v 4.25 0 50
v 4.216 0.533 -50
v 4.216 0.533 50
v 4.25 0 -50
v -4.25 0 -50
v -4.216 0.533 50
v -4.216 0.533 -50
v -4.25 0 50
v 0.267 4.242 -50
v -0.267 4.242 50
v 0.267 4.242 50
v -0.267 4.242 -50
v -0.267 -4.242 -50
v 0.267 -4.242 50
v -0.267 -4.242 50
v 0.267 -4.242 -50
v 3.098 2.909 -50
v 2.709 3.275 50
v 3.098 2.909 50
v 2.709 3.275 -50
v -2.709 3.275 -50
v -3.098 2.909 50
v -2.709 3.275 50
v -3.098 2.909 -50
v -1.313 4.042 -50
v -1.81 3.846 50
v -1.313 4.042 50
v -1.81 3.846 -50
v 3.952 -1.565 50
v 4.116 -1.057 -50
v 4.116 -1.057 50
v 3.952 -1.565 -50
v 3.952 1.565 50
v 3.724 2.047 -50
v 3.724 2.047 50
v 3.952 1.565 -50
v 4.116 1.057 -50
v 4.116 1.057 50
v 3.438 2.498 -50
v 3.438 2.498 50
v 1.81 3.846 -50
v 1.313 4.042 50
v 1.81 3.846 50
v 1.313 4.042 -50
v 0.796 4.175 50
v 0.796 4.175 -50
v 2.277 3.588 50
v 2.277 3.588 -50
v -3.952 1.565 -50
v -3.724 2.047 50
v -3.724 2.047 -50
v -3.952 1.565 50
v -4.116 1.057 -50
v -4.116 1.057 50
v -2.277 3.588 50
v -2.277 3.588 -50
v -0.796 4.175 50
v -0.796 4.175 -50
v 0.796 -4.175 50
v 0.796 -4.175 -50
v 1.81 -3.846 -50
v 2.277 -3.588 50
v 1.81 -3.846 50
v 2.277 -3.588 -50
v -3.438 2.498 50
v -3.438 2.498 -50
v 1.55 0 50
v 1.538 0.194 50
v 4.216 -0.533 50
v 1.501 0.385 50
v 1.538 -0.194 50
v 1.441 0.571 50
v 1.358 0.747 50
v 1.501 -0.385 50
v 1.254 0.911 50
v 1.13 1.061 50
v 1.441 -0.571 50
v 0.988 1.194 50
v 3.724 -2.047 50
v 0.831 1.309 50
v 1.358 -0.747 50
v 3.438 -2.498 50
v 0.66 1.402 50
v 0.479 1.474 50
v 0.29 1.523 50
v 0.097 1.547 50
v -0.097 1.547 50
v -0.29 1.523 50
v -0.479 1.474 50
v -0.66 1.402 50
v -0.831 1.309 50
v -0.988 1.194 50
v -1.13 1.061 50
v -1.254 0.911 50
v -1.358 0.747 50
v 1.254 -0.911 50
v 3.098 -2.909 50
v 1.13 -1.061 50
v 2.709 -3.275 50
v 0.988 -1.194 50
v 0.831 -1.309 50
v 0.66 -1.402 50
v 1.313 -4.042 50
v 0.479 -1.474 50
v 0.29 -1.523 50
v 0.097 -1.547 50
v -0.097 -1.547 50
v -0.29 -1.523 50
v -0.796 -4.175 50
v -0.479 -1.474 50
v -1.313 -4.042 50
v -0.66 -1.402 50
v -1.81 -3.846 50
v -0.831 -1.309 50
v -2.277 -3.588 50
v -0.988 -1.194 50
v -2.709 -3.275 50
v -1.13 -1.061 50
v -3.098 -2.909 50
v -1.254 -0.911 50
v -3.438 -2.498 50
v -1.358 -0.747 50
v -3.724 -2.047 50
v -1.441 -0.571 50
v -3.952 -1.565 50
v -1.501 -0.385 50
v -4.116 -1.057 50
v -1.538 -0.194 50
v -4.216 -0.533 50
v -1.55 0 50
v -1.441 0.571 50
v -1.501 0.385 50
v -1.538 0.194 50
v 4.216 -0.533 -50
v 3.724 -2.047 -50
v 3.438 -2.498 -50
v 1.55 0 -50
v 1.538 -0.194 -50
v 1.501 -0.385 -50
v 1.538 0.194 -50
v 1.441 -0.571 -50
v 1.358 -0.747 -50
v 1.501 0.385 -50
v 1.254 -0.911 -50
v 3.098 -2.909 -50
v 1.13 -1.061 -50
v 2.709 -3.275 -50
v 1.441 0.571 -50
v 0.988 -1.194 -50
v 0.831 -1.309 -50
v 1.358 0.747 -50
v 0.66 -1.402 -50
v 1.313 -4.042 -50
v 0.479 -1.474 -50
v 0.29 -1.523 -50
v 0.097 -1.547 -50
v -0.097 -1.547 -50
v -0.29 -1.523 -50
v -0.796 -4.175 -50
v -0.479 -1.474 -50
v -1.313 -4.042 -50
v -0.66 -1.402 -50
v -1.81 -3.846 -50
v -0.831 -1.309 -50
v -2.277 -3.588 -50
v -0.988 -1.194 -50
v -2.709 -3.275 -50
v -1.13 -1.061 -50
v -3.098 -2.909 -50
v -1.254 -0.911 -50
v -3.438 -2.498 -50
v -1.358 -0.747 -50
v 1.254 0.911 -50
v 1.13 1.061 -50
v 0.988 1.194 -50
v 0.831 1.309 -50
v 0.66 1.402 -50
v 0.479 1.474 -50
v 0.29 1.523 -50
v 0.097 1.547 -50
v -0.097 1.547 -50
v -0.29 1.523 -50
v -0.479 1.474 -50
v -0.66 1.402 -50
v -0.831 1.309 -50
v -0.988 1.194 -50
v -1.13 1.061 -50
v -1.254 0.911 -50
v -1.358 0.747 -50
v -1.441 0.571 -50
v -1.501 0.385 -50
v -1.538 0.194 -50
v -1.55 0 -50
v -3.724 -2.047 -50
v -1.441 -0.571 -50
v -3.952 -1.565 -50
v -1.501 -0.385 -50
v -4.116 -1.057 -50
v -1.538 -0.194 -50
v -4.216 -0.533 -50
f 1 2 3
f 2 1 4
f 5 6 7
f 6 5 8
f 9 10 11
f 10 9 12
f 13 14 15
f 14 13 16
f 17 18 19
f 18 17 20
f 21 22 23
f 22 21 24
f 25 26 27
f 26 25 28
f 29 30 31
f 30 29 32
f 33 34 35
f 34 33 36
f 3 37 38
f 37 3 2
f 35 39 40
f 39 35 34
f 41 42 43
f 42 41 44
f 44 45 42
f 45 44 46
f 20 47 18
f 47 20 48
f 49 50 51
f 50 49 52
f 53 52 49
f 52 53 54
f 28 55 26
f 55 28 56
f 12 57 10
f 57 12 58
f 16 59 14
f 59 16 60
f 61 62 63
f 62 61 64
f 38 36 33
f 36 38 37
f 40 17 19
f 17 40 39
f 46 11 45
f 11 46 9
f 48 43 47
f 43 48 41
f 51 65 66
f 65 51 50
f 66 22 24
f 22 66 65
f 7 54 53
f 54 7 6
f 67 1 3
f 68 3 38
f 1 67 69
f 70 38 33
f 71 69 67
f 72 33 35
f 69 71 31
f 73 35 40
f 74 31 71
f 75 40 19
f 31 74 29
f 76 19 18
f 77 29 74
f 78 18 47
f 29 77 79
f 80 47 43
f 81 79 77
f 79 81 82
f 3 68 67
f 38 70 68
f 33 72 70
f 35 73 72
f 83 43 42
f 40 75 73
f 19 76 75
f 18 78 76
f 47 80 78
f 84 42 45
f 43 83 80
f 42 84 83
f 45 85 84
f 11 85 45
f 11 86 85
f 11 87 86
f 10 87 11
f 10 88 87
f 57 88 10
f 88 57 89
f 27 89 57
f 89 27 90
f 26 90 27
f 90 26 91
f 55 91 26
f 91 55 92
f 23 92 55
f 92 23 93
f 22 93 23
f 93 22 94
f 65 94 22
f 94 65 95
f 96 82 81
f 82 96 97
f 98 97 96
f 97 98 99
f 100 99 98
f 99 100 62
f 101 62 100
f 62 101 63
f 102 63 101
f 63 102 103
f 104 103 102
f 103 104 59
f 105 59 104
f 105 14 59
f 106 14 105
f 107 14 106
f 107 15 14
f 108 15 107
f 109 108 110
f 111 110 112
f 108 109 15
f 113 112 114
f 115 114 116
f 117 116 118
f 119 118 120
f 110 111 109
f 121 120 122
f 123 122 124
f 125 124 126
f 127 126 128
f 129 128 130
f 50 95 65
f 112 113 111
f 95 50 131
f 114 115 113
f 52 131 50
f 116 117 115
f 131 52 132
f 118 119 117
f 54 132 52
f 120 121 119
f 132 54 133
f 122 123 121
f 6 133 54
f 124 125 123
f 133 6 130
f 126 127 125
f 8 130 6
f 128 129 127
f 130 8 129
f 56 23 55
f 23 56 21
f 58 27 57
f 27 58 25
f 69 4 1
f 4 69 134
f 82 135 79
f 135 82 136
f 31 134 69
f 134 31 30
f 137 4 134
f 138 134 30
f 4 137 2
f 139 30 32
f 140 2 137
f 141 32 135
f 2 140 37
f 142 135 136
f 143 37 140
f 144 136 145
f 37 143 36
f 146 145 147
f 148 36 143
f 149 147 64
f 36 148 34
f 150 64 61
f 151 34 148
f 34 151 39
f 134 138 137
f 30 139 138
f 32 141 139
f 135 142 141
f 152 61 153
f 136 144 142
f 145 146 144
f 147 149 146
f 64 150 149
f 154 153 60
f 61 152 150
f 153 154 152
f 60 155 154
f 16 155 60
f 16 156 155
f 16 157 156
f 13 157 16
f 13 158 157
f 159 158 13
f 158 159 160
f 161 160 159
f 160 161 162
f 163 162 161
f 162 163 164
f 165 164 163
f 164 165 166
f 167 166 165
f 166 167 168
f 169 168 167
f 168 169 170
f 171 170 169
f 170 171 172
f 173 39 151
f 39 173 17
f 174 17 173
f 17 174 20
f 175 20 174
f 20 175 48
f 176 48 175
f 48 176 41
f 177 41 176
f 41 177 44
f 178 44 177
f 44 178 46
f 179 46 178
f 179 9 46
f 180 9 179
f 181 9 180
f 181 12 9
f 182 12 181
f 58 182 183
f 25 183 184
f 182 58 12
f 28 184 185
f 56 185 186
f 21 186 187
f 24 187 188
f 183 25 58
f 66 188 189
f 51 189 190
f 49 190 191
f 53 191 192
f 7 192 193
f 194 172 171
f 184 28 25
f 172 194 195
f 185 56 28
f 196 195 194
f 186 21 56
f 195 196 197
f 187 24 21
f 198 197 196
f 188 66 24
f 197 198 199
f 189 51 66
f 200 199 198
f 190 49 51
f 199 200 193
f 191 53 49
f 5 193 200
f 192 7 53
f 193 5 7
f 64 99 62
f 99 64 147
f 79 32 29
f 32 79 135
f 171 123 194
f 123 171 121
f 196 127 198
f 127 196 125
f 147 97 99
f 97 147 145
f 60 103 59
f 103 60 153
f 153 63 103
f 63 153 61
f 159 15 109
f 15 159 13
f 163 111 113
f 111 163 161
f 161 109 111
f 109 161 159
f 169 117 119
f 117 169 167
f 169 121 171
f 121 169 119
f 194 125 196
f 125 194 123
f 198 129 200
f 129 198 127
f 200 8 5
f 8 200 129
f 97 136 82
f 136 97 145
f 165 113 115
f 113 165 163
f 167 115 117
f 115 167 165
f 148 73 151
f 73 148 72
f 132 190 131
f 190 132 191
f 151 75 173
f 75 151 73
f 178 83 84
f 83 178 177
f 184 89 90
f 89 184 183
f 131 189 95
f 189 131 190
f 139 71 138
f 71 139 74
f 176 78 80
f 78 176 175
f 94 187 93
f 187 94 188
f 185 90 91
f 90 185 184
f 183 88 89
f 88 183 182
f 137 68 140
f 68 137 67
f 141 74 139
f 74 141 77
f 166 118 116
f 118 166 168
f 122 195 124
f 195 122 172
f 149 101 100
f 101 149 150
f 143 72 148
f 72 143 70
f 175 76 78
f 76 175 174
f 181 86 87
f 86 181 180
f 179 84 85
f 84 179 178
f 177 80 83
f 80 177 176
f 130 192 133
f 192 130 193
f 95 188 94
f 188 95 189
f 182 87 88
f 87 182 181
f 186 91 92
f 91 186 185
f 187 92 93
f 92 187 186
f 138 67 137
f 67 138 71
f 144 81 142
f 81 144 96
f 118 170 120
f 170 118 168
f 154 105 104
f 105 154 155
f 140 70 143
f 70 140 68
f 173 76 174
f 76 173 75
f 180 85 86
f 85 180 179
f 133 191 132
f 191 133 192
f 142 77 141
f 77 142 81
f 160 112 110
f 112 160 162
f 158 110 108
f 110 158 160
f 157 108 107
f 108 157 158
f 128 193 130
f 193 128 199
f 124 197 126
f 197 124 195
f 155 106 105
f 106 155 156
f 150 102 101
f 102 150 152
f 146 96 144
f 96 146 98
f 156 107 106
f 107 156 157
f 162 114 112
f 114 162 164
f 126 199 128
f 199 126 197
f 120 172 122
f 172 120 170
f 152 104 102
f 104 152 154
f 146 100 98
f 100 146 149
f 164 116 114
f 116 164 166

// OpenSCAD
$fn = 50;


difference() {
	union() {
		translate(v = [0, 0, -50.0000000000]) {
			cylinder(h = 100, r = 4.2500000000);
		}
	}
	union() {
		translate(v = [0, 0, -100.0000000000]) {
			cylinder(h = 200, r = 1.5500000000);
		}
	}
}
